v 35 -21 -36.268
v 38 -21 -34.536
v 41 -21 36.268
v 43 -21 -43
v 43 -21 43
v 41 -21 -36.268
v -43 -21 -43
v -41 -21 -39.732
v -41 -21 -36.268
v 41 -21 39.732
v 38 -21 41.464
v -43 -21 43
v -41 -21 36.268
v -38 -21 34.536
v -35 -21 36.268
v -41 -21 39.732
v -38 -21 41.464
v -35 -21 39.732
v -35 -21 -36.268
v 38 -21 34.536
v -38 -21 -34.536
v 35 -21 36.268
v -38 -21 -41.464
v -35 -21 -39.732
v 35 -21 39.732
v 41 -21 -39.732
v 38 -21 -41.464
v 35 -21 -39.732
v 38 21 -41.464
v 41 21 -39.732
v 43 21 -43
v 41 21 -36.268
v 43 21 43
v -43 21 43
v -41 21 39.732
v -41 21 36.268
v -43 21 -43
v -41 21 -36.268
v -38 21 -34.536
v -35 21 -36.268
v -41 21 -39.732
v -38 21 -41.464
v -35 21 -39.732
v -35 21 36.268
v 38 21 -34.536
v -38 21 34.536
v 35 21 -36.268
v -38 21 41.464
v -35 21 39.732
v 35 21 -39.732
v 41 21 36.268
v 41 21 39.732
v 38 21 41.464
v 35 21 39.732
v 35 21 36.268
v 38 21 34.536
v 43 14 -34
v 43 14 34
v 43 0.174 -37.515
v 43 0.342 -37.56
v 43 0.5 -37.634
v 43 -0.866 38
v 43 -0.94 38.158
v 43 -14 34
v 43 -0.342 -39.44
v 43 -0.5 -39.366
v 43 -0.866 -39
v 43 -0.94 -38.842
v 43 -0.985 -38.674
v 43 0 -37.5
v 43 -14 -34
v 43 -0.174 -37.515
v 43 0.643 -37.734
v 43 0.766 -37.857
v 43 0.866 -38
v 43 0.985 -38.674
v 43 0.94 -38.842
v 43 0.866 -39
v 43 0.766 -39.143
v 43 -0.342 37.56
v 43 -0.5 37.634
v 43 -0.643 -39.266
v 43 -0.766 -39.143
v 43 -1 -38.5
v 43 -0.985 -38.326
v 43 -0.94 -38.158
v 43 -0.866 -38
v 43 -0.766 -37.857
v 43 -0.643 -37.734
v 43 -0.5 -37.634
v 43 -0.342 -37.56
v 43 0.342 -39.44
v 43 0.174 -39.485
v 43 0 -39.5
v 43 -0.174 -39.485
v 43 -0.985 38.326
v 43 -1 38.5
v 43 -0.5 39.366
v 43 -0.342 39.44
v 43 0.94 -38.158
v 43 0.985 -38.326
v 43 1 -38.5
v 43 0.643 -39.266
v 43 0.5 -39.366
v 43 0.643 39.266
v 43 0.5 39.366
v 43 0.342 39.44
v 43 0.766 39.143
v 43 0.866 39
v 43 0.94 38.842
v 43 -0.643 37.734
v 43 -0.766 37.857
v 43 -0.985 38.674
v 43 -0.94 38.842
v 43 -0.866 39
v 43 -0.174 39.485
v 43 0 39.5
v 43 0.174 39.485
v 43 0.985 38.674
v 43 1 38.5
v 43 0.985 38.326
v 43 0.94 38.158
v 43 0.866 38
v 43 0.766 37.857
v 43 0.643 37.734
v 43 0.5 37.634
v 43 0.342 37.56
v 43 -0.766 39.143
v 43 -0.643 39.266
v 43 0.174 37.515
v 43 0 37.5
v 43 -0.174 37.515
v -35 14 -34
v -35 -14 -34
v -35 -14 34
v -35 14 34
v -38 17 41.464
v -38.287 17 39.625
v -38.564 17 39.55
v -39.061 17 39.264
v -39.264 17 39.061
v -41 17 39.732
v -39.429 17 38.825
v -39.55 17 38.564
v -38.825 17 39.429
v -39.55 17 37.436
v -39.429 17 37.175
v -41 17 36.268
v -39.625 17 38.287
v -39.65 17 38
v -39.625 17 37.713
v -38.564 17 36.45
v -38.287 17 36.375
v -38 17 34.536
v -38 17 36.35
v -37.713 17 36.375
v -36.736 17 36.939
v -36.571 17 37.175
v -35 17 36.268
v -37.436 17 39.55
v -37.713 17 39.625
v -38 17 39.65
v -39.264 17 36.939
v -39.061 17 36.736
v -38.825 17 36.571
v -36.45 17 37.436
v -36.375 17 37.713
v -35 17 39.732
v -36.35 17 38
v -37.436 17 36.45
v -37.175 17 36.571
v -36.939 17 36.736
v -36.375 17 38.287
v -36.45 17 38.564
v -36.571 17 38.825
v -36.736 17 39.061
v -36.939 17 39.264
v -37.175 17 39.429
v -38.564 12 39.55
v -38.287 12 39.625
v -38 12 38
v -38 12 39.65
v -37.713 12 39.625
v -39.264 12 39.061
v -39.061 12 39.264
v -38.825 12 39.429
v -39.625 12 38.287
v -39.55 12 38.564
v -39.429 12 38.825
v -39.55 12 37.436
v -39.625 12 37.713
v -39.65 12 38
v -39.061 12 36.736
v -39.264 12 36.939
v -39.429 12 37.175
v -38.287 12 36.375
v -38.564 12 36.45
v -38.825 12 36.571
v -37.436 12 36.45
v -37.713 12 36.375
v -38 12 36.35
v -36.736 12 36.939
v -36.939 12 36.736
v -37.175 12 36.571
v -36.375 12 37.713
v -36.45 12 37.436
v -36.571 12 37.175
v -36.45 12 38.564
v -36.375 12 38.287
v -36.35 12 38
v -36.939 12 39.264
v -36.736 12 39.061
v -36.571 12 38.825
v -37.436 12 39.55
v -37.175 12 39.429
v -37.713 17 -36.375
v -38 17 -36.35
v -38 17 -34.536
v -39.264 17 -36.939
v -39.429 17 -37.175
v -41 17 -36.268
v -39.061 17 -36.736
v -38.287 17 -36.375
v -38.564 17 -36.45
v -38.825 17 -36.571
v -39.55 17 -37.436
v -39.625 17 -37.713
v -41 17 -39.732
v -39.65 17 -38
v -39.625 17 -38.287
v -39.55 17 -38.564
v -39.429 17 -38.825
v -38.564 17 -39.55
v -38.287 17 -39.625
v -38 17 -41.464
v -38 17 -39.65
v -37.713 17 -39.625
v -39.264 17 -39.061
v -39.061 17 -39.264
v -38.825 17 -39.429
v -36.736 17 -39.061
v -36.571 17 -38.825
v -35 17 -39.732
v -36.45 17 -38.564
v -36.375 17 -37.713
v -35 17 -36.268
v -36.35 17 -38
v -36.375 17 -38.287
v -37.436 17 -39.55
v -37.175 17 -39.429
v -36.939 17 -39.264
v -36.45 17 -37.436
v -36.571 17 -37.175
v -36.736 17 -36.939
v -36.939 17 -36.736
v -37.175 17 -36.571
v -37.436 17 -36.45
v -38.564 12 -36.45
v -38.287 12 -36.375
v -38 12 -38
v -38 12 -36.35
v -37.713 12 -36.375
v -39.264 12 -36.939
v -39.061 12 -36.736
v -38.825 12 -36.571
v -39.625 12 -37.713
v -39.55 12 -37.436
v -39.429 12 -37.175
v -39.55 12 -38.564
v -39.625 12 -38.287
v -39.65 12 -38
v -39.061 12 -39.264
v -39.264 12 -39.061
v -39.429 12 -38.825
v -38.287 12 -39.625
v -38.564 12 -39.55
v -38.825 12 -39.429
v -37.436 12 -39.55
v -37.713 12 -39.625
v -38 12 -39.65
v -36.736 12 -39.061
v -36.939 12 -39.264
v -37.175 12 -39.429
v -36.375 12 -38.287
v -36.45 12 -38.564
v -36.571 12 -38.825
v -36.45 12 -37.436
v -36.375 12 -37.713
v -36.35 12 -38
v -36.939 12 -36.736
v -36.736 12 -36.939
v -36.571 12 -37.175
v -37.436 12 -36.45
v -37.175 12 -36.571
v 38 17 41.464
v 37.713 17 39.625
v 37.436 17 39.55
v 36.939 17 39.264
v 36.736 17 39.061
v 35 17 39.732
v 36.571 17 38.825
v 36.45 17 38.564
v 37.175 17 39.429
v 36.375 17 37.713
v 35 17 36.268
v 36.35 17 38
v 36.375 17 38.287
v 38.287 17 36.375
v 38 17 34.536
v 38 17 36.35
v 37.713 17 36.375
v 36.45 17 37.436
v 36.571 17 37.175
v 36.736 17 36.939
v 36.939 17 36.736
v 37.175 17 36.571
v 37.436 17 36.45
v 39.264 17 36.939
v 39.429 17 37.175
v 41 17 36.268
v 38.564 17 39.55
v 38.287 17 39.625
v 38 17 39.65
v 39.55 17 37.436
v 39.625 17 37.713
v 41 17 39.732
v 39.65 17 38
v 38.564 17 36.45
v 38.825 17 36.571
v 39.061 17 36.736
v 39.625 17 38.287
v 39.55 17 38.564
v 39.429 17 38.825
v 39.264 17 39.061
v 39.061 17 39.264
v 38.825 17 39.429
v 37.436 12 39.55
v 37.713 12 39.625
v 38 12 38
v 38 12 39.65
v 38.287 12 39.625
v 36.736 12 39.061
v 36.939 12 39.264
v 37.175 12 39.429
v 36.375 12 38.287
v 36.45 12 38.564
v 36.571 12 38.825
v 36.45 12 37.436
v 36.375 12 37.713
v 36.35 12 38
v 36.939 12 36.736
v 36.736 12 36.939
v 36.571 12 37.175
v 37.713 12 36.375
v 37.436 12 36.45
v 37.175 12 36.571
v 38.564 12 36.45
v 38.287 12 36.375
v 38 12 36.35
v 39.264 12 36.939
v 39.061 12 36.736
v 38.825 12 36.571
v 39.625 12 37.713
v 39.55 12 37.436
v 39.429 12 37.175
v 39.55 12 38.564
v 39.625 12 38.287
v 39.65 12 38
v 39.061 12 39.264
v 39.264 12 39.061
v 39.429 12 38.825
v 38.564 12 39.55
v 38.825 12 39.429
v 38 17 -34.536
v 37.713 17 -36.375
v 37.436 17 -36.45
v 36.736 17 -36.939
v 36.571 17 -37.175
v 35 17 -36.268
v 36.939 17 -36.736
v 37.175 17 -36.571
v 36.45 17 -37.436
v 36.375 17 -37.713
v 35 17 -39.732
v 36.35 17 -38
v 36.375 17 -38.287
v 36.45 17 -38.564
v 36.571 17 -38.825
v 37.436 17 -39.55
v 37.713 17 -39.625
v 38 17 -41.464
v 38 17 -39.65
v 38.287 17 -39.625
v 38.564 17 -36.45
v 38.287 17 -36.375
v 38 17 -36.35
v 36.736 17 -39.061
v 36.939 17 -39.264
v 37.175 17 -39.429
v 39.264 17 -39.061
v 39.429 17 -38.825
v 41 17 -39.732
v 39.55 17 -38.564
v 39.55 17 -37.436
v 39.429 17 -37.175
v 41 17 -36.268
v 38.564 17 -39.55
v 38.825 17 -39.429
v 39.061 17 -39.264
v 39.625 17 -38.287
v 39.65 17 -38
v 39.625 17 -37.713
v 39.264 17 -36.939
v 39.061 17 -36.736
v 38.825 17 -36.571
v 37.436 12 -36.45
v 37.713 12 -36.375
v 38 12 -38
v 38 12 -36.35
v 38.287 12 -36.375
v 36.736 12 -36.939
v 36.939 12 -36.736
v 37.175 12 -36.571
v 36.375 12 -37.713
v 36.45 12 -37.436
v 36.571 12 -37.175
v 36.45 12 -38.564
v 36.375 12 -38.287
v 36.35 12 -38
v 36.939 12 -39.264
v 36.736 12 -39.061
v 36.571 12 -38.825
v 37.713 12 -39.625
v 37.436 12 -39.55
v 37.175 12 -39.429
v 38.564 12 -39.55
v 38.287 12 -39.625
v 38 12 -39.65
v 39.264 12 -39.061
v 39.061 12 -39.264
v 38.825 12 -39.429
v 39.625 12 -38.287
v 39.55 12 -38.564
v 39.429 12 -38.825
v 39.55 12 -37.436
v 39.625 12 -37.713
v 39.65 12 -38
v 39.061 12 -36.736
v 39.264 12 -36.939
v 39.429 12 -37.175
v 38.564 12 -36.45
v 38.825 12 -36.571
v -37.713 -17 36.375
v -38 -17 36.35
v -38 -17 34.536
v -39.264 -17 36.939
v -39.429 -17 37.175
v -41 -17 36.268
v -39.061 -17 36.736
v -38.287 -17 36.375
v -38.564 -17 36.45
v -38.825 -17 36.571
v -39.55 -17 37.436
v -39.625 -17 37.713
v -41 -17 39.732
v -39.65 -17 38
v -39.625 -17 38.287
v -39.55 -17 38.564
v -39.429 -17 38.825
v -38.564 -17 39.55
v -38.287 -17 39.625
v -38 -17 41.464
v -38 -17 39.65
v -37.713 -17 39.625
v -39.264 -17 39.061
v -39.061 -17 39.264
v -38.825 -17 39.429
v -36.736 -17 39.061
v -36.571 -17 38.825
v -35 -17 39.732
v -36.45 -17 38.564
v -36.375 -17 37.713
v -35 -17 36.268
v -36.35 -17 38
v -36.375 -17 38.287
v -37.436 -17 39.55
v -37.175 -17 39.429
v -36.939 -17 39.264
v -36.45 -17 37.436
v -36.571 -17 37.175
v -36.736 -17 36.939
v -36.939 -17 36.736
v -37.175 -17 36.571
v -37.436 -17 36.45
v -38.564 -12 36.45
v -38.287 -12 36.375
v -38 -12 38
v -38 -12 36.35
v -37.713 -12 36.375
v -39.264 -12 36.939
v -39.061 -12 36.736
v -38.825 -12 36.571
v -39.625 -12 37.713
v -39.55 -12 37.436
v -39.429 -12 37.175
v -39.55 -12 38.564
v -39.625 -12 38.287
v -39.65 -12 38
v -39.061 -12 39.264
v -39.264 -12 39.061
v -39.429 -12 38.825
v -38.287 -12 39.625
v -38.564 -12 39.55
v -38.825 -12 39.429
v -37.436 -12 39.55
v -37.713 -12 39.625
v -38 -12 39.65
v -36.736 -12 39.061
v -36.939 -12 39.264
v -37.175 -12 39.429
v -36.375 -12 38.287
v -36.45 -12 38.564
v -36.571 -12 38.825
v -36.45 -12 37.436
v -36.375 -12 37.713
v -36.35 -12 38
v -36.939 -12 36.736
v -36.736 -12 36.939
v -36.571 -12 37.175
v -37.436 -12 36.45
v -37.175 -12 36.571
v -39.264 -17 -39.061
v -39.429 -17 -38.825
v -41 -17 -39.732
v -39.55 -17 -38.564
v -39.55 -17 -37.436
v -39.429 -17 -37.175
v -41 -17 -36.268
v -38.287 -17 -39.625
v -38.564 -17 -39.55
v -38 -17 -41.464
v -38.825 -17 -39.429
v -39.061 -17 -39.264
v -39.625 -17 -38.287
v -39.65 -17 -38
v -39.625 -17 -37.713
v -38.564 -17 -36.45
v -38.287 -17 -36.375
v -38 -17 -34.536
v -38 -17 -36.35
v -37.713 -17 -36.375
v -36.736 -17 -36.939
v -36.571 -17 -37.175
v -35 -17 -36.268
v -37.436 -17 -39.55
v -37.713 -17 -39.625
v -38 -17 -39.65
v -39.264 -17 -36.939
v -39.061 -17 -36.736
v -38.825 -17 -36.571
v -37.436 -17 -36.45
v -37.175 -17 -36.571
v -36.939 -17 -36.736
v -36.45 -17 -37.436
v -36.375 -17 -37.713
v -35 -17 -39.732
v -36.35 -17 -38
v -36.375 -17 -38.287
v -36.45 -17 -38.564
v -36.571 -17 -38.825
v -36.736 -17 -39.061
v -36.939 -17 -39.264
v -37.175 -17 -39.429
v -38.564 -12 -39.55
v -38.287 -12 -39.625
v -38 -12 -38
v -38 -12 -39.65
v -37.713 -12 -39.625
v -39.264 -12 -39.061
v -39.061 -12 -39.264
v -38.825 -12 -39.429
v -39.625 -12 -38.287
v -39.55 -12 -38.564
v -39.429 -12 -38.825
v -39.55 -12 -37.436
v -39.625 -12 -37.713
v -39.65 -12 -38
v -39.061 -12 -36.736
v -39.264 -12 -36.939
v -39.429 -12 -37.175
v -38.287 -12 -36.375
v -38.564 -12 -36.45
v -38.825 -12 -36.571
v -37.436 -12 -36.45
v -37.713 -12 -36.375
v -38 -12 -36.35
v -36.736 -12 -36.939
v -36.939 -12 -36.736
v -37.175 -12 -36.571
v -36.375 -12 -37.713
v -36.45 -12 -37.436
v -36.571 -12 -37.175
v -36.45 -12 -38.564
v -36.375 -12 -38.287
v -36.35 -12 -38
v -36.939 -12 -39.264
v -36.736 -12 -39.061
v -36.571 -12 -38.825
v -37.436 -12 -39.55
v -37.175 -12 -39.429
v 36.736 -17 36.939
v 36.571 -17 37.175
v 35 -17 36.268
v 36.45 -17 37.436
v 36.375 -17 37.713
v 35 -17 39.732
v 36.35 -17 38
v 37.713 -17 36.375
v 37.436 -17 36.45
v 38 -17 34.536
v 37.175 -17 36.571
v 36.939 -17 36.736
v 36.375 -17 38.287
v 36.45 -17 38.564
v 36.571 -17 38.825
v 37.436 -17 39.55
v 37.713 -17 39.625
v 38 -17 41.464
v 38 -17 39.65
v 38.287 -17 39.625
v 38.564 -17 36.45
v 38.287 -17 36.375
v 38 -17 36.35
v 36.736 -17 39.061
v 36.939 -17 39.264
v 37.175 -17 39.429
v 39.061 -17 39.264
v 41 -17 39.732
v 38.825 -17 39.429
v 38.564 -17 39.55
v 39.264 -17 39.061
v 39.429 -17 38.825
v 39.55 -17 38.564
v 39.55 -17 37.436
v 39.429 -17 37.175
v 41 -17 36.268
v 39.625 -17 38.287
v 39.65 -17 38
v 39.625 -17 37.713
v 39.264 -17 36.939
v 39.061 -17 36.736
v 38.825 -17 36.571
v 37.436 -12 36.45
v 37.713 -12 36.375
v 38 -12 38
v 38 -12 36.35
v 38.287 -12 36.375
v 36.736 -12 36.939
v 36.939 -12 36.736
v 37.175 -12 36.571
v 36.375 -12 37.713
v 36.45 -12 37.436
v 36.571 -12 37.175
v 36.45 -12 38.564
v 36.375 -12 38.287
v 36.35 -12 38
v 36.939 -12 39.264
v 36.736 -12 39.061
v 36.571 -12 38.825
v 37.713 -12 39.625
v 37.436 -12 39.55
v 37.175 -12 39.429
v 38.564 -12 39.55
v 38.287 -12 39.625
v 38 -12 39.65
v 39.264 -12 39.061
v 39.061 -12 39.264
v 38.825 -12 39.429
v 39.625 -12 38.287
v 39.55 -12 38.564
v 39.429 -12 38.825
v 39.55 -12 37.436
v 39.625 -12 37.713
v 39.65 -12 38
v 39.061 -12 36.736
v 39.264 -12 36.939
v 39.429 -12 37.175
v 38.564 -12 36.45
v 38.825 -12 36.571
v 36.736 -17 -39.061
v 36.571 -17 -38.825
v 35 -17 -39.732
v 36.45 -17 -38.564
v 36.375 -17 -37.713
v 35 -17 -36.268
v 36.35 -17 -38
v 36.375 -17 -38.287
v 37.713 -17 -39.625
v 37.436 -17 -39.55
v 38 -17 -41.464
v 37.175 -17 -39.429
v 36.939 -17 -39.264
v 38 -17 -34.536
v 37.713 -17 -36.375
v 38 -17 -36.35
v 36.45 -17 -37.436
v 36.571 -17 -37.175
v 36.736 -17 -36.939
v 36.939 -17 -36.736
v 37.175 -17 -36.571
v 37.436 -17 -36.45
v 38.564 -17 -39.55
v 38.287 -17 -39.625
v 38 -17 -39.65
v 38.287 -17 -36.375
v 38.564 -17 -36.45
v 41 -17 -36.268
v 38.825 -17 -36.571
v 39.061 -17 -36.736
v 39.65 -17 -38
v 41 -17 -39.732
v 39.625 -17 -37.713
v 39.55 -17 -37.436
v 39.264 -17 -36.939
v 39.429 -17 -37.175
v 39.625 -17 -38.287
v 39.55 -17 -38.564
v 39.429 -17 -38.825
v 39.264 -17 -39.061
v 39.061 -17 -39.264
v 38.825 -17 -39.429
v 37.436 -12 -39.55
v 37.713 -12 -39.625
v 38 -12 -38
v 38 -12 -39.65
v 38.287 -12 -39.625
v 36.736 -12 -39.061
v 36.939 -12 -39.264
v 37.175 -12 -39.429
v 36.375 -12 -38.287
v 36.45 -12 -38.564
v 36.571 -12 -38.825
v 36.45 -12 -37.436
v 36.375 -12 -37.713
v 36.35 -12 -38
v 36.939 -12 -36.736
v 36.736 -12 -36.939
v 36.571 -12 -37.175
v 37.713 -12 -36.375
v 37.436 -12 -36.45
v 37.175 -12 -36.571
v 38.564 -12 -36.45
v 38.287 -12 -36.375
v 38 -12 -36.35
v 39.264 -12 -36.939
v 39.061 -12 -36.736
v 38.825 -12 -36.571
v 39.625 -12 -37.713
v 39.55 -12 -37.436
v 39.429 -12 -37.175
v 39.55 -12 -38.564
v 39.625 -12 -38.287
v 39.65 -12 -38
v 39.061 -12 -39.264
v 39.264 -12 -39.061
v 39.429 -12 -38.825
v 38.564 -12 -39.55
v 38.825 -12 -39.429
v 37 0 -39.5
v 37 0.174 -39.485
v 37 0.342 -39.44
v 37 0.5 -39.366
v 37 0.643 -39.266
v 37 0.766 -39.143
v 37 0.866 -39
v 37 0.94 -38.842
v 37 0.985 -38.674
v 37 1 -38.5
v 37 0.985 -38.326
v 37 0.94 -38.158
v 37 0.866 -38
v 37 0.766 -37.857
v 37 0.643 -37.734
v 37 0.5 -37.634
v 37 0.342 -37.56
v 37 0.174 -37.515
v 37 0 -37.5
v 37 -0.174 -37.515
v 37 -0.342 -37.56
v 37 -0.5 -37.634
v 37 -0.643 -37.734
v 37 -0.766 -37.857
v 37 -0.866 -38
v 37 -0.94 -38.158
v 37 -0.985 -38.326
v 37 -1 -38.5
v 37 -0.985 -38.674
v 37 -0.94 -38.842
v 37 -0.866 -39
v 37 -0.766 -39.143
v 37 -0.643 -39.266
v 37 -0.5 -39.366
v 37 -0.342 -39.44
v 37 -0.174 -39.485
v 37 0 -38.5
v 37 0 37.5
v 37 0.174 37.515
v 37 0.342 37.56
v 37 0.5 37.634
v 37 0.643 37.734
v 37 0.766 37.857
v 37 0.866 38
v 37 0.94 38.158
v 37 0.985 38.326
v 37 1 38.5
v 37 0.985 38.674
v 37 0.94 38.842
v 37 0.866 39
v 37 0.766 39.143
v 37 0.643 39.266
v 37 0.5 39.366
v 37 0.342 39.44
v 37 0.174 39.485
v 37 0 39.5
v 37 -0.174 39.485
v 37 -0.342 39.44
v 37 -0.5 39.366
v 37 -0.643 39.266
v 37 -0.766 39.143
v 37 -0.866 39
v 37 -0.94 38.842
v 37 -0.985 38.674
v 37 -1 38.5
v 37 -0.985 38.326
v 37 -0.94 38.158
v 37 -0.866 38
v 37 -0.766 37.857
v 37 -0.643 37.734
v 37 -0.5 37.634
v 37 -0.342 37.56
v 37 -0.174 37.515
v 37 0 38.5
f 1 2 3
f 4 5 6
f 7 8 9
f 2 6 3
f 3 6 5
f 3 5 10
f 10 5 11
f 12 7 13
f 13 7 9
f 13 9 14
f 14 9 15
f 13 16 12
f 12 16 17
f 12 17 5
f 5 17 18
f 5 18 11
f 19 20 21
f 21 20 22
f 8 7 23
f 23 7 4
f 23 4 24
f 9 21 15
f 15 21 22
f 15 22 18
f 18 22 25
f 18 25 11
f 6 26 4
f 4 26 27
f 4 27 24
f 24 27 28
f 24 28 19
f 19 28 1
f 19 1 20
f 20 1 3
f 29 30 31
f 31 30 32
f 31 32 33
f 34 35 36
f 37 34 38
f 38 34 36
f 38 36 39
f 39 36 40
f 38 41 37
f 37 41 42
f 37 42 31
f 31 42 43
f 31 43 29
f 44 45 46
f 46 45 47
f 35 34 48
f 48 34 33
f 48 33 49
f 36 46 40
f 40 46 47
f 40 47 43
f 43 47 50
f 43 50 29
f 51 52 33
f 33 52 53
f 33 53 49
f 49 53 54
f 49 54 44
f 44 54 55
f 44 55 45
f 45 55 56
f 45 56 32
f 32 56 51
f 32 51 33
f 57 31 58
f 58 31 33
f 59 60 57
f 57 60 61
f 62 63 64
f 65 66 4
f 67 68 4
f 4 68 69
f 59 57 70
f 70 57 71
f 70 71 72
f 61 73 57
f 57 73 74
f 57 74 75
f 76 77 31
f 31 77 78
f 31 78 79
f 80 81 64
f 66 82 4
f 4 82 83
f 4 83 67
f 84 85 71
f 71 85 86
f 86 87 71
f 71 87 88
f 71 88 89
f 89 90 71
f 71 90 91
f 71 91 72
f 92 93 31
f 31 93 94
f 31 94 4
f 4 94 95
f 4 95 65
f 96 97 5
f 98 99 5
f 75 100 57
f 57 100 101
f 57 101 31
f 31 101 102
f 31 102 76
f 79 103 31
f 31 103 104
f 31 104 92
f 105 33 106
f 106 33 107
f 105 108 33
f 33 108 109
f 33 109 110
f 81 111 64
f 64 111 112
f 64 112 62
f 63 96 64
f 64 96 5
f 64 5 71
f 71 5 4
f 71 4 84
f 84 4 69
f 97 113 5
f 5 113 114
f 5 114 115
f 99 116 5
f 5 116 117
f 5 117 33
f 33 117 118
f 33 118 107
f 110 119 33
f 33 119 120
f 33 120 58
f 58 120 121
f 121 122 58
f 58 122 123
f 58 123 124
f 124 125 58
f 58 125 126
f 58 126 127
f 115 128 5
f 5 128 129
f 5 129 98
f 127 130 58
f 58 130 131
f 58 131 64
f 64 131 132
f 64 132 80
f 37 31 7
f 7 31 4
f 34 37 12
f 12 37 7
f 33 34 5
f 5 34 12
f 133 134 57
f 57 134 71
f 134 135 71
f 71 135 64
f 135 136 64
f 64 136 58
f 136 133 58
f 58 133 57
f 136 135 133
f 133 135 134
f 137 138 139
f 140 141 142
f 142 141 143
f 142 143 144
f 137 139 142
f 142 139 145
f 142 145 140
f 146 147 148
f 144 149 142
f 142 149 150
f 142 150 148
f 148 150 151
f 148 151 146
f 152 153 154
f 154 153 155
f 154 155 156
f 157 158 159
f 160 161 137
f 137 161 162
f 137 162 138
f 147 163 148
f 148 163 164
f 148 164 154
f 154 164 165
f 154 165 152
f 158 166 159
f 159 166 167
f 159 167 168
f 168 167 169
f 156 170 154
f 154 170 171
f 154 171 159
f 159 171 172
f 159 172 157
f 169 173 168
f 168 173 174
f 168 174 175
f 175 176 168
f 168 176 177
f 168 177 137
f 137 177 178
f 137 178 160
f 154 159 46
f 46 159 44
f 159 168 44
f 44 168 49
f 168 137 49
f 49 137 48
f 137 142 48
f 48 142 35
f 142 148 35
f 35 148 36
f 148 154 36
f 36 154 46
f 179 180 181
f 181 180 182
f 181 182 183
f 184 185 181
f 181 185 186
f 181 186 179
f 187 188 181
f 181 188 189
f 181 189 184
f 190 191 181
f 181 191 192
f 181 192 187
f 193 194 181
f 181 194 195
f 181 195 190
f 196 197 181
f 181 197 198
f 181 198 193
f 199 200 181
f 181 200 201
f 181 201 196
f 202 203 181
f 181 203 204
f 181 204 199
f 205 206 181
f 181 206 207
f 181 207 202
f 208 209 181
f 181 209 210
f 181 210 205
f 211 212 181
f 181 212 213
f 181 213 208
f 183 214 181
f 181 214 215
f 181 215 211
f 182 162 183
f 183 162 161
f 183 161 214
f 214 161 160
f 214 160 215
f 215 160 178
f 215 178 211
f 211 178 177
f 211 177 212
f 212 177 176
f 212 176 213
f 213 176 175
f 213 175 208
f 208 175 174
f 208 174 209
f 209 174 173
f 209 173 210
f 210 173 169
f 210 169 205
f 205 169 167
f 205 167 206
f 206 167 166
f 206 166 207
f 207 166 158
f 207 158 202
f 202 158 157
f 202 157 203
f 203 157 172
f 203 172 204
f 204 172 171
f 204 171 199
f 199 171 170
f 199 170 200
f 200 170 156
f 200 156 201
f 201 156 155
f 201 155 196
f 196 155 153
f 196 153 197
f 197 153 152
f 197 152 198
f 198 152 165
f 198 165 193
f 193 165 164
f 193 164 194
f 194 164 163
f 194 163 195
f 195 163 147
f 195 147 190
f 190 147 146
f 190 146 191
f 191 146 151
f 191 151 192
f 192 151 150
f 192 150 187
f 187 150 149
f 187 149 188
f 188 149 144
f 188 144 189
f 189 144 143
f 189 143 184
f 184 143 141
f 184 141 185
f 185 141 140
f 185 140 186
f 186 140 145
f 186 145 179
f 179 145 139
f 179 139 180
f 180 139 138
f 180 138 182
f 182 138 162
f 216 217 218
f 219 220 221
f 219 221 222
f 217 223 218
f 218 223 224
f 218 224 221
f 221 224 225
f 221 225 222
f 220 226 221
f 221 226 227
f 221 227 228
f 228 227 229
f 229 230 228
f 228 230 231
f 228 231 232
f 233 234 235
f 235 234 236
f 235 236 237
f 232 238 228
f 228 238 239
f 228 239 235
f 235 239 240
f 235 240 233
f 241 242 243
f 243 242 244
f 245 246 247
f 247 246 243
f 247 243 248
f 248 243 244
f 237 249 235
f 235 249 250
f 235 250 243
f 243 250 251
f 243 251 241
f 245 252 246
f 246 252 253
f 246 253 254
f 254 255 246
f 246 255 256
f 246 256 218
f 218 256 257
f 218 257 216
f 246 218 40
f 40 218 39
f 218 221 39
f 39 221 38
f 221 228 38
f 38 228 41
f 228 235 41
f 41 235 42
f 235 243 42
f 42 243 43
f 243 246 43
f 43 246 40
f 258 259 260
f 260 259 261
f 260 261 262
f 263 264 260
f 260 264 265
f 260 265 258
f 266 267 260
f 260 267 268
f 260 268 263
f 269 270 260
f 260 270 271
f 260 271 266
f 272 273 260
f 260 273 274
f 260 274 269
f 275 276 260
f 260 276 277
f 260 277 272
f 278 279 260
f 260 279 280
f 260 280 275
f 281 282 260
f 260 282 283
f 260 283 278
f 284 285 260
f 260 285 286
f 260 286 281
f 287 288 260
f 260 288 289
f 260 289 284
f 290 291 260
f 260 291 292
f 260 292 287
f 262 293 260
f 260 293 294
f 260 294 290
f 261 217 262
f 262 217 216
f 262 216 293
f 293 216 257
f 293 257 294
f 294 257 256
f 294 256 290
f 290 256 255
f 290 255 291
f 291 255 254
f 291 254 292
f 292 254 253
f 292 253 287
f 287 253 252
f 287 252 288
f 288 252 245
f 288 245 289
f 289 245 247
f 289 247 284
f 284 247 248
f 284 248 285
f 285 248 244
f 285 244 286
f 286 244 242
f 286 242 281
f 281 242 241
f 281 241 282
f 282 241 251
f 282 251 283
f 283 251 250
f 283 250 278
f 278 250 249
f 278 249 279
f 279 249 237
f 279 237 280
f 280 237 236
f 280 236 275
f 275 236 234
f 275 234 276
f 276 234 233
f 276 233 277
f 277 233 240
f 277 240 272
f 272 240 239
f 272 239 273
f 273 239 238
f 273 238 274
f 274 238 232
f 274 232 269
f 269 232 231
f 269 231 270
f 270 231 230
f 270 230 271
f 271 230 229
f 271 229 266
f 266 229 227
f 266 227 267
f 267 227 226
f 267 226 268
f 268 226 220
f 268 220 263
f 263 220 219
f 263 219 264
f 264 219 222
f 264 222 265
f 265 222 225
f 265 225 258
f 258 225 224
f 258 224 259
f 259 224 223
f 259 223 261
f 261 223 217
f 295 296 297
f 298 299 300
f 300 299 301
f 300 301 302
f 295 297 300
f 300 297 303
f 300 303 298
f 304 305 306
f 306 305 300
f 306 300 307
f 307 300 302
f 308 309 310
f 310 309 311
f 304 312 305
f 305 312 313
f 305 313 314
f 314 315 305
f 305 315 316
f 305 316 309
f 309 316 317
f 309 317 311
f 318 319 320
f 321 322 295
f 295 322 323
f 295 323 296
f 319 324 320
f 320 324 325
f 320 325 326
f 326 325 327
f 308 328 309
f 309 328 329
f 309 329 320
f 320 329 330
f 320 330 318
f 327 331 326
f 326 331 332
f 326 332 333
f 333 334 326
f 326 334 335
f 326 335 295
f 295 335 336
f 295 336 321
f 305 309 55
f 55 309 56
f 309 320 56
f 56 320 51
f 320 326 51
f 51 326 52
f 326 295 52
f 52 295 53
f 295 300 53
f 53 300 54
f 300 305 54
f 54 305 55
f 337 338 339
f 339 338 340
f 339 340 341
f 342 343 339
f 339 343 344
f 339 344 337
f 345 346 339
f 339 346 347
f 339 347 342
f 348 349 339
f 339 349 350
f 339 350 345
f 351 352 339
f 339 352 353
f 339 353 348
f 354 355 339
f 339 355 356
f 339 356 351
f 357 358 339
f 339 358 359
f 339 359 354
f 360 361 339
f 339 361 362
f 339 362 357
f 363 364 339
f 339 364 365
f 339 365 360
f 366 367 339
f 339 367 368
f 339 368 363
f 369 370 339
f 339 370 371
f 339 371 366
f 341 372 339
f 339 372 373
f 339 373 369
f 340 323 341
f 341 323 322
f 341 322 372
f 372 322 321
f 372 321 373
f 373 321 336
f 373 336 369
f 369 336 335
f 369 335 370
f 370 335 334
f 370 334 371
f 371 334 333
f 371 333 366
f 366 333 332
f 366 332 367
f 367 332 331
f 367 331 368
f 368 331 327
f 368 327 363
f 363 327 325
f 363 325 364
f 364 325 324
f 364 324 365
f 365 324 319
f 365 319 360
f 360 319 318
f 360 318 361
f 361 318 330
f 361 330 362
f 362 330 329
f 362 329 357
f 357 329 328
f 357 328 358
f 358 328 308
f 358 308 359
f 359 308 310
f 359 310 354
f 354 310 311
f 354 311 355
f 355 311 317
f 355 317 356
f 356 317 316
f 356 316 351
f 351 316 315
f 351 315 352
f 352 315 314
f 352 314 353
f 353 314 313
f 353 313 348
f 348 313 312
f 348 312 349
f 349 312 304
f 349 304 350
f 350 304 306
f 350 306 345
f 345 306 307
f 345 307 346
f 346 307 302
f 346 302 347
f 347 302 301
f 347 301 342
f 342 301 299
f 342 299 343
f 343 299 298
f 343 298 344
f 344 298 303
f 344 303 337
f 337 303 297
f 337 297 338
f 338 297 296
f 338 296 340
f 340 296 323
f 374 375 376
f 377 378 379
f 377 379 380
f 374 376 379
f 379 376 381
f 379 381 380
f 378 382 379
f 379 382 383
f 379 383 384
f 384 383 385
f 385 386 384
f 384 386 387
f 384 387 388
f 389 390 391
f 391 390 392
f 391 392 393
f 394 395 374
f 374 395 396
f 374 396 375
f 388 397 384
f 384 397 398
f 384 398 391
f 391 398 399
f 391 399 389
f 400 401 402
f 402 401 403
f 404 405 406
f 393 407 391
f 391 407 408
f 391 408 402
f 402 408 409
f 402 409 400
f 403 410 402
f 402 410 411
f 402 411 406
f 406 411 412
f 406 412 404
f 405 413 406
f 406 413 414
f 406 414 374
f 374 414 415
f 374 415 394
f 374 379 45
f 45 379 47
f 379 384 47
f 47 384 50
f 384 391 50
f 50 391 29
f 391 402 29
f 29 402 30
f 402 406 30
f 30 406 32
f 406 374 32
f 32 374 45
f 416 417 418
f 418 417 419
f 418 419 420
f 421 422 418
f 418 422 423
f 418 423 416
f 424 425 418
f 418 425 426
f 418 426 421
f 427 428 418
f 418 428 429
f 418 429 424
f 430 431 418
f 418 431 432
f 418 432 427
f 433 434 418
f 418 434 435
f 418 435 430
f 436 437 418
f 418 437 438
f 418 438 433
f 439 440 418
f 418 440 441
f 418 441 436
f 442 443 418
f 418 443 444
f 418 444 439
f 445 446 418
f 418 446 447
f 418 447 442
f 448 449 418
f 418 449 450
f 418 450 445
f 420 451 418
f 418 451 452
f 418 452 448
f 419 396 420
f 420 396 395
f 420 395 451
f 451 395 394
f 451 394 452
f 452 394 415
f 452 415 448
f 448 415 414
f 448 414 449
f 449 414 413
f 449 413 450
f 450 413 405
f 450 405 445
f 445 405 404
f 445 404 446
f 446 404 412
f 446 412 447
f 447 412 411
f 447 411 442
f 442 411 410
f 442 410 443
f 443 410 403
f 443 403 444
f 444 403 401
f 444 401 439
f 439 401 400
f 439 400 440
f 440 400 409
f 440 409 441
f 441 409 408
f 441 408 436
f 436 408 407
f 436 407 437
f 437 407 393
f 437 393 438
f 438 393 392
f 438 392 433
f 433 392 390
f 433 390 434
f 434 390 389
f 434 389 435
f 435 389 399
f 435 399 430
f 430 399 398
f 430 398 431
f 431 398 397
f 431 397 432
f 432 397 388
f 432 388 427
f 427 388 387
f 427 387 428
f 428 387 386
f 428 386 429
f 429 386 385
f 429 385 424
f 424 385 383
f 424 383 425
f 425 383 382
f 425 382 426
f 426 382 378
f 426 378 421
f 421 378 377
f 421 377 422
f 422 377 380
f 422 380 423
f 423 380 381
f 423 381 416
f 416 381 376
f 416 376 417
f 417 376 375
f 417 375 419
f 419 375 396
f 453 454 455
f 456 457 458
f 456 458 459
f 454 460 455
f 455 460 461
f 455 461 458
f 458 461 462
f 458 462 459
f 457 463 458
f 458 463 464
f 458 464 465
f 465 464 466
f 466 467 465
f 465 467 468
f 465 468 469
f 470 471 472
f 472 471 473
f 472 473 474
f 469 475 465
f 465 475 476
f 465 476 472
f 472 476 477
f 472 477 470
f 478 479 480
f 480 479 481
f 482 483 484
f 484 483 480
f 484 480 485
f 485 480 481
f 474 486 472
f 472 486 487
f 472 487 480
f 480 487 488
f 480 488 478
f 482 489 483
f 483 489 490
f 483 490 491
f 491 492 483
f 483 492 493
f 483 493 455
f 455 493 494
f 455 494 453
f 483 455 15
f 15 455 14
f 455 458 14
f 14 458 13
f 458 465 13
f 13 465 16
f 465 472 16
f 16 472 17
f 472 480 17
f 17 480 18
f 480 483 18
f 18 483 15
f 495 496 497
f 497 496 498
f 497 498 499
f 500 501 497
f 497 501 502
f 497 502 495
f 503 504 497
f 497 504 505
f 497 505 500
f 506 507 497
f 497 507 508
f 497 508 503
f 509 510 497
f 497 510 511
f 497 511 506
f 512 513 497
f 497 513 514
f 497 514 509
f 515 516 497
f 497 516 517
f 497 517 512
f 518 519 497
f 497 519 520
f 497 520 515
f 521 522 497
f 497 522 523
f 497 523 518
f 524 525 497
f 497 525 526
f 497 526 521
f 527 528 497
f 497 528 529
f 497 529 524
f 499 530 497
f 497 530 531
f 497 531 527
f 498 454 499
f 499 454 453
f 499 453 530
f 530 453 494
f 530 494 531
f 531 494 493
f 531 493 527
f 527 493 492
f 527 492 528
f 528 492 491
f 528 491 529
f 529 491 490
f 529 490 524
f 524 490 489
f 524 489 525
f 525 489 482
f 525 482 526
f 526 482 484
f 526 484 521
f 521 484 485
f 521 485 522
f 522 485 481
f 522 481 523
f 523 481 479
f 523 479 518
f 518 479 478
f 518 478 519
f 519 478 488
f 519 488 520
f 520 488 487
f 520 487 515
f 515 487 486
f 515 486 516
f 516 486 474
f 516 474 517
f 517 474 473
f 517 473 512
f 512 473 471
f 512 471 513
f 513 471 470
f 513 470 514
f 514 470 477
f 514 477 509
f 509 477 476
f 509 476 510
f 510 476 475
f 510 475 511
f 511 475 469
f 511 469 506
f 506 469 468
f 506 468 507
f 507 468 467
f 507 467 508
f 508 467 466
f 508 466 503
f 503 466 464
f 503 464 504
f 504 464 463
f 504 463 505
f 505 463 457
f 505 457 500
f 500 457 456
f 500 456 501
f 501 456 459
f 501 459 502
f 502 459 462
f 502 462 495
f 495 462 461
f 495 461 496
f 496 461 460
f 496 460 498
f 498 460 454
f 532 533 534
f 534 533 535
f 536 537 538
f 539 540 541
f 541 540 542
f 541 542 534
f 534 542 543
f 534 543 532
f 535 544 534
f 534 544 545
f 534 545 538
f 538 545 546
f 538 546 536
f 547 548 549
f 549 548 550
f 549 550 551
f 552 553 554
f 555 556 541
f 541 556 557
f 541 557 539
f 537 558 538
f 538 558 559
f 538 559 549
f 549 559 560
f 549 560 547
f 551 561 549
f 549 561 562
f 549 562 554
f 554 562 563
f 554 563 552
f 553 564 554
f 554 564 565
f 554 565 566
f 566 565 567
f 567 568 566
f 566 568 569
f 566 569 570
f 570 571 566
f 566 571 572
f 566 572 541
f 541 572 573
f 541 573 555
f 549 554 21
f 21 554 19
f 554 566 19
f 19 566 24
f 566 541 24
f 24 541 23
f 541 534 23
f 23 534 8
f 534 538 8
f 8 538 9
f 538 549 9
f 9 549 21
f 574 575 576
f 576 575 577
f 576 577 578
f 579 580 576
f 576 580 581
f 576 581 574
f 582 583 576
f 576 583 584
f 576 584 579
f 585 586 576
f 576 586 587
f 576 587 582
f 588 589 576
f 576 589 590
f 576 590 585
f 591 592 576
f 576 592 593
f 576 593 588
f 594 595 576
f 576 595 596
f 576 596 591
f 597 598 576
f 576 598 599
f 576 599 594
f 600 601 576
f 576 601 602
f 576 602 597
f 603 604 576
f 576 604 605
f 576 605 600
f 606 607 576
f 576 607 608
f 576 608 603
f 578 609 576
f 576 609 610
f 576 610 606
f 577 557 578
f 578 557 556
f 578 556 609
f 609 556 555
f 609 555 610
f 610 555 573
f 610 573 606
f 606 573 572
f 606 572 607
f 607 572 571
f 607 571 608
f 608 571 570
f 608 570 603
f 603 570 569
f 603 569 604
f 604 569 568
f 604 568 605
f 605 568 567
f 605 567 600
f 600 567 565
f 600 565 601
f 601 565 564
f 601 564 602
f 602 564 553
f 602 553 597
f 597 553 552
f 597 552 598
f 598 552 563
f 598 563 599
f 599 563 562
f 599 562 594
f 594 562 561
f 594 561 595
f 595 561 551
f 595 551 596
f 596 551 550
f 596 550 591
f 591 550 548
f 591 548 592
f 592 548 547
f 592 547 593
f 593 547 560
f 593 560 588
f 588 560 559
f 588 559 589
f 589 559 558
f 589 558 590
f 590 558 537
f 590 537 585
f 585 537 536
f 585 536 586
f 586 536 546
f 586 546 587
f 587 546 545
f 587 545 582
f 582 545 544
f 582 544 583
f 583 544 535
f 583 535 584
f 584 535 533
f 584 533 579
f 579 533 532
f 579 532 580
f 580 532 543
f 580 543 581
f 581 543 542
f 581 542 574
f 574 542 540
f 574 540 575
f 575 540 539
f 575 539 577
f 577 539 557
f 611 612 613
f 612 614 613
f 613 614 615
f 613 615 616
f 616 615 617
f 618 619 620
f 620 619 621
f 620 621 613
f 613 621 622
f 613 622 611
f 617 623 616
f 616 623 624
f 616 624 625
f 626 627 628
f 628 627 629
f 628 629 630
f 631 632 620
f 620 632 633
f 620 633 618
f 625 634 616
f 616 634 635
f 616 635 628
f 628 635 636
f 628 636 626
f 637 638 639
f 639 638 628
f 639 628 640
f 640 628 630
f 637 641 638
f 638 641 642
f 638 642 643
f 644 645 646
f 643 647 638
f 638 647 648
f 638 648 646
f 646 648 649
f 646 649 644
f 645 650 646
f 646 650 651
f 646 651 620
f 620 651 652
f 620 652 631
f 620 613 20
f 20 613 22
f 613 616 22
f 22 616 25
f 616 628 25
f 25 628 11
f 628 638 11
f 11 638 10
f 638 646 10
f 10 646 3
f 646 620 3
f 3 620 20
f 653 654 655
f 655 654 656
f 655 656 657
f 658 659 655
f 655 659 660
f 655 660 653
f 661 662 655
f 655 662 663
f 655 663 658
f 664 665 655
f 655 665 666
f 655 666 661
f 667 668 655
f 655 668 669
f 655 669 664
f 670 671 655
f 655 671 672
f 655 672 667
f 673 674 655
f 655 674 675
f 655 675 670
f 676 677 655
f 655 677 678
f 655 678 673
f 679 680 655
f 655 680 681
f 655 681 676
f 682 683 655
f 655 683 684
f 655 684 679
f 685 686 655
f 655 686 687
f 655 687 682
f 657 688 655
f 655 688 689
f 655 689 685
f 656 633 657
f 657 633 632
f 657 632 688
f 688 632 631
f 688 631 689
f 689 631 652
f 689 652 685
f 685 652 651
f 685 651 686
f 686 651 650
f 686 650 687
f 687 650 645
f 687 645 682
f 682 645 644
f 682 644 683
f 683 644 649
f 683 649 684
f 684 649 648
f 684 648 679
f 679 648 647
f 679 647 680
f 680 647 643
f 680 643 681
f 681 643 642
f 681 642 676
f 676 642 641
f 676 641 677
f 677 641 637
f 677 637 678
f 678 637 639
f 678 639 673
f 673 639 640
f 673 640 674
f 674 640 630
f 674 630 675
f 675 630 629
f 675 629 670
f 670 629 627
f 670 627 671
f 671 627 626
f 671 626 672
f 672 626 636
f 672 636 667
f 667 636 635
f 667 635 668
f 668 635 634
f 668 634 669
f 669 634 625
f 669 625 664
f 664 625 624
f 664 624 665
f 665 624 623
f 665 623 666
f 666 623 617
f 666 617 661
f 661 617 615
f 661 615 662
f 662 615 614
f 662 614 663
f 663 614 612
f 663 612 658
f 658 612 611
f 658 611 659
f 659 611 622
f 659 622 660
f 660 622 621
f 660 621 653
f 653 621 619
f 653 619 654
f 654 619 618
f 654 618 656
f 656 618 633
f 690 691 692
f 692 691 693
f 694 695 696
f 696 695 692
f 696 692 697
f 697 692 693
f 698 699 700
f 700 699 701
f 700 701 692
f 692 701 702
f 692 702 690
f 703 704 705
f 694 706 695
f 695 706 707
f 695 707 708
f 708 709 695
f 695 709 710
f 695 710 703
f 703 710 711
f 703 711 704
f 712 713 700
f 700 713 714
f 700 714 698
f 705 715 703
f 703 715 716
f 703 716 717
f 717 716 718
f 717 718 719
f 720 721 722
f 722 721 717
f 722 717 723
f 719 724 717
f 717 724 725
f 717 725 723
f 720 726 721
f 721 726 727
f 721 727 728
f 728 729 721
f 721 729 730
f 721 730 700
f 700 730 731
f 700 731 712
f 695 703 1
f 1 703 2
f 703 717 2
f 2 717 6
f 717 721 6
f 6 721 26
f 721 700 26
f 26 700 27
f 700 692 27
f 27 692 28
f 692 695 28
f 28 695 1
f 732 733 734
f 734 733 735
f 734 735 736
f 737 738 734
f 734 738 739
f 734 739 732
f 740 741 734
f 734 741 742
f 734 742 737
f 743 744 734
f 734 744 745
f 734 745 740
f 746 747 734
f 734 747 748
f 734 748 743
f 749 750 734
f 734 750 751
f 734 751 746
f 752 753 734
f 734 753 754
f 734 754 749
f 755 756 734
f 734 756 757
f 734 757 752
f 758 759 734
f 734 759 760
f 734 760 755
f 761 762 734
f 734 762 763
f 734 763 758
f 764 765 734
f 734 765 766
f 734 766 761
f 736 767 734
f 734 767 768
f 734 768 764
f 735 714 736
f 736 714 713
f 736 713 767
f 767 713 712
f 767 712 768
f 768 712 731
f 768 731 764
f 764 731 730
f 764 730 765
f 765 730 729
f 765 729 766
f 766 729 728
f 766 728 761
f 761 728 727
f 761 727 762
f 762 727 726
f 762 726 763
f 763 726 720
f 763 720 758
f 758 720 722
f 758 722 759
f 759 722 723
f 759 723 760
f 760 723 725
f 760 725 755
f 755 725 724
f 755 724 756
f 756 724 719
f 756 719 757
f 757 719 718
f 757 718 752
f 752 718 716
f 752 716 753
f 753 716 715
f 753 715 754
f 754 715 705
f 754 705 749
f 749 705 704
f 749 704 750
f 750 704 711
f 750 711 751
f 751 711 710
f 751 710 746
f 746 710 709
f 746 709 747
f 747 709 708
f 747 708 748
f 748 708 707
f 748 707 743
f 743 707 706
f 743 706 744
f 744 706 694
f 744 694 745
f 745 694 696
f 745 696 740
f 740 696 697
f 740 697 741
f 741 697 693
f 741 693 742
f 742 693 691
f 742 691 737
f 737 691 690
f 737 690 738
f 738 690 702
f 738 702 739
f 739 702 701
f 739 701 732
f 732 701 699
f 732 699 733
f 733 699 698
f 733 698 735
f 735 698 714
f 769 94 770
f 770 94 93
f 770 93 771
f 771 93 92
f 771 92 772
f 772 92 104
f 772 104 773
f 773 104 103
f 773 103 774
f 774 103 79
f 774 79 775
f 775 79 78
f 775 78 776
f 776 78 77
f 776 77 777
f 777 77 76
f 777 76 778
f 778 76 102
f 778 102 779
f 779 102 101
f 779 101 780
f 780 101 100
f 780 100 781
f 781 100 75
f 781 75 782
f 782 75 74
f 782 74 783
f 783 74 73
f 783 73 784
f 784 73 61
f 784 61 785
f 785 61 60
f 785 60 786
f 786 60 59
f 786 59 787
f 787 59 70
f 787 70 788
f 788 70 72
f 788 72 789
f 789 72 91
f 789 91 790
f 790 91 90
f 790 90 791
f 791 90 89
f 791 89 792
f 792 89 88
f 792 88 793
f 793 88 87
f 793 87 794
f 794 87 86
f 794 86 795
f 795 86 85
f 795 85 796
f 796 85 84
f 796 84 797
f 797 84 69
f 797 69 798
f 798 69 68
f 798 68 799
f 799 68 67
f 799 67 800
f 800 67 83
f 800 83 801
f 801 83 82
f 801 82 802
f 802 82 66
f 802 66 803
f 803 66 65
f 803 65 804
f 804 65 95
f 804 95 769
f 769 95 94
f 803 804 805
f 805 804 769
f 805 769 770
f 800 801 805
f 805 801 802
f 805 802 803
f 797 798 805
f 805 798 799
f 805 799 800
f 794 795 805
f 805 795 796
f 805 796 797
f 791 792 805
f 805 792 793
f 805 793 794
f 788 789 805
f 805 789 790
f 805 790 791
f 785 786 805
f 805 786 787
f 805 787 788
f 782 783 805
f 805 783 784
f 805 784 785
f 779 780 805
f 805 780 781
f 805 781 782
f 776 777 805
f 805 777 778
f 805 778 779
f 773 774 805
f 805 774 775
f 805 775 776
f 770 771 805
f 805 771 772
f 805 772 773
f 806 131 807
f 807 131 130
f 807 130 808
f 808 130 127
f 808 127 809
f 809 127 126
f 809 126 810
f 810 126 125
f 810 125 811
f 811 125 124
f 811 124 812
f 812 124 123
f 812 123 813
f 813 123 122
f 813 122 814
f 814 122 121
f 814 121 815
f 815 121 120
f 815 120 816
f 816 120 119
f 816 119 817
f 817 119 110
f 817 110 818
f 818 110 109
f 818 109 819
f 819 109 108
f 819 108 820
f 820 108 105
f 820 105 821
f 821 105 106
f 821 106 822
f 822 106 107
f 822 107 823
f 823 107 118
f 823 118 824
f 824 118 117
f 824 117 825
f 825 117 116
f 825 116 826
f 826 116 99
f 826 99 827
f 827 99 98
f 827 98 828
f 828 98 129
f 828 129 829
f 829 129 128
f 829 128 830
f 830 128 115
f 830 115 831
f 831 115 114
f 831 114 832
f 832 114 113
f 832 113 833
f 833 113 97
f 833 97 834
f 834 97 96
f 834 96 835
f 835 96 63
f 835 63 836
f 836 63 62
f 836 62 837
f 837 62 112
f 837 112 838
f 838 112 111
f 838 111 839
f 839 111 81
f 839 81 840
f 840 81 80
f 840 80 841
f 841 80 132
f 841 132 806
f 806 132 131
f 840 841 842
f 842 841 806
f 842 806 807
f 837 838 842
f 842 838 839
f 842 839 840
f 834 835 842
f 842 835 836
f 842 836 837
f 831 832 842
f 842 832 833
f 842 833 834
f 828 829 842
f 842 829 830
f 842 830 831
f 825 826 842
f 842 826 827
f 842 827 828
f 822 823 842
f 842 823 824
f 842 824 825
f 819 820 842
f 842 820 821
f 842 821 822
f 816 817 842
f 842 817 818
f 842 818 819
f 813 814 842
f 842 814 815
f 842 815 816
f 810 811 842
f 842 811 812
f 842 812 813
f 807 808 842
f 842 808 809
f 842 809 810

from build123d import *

# Parameters (mm, degrees)
ESBO_O1_W                = 86
ESBO_O1_H                = 86
RESSALTO_EXTRUS_O1_DEPTH = 21
ESBO_O2_W                = 68
ESBO_O2_H                = 28
CORTE_EXTRUS_O1_DEPTH    = 78
ESBO_O6_R                = 1.65
CORTE_EXTRUS_O3_DEPTH    = 9
CORTE_EXTRUS_O4_DEPTH    = 4
ESPELHAR2_COPY_1_DEPTH   = 4
CORTE_EXTRUS_O5_START    = -9
ESBO_O8_R                = 1.65
CORTE_EXTRUS_O5_DEPTH    = 9
ESPELHAR4_COPY_1_DEPTH   = 4
ESPELHAR4_COPY_2_DEPTH   = 4
ESPELHAR4_COPY_3_DEPTH   = 4
ESBO_O9_R                = 1
CORTE_EXTRUS_O6_DEPTH    = 6


with BuildPart() as part:
    # Esboço1 → Ressalto-extrusão1 (new, symmetric)
    with BuildSketch(Plane(origin=(0, 0, 0), x_dir=(1, 0, 0), z_dir=(0, 1, 0))):
        Rectangle(ESBO_O1_W, ESBO_O1_H)
    extrude(amount=RESSALTO_EXTRUS_O1_DEPTH, both=True)

    # Esboço2 → Corte-extrusão1 (cut)
    with BuildSketch(Plane(origin=(43, 0, 0), x_dir=(0, 0, -1), z_dir=(1, 0, 0))):
        Rectangle(ESBO_O2_W, ESBO_O2_H)
    extrude(amount=-CORTE_EXTRUS_O1_DEPTH, mode=Mode.SUBTRACT)

    # Esboço6 → Corte-extrusão3 (cut)
    with BuildSketch(Plane(origin=(0, 21, 0), x_dir=(1, 0, 0), z_dir=(0, 1, 0))):
        with Locations(Location((-38, -38, 0), (0, 0, 270))):
            Circle(ESBO_O6_R)
        with Locations(Location((-38, 38, 0), (0, 0, 270))):
            Circle(ESBO_O6_R)
        with Locations(Location((38, 38, 0), (0, 0, 270))):
            Circle(ESBO_O6_R)
        with Locations(Location((38, -38, 0), (0, 0, 270))):
            Circle(ESBO_O6_R)
    extrude(amount=-CORTE_EXTRUS_O3_DEPTH, mode=Mode.SUBTRACT)

    # Esboço7 → Corte-extrusão4 (cut)
    with BuildSketch(Plane(origin=(0, 21, 0), x_dir=(1, 0, 0), z_dir=(0, 1, 0))):
        Polygon((-38, -34.535898385), (-41, -36.267949192), (-41, -39.732050808), (-38, -41.464101615), (-35, -39.732050808), (-35, -36.267949192), align=None)
    corte_extrus_o4 = extrude(amount=-CORTE_EXTRUS_O4_DEPTH, mode=Mode.SUBTRACT)

    # Espelhar1: Corte-extrusão4 across plane
    add(corte_extrus_o4.mirror(Plane.XY), mode=Mode.SUBTRACT)

    # Espelhar2: Corte-extrusão4 across plane
    add(corte_extrus_o4.mirror(Plane(origin=(0, 0, 0), x_dir=(0, 0, 1), z_dir=(1, 0, 0))), mode=Mode.SUBTRACT)

    # Espelhar2 copy 1 sketch → Espelhar2 copy 1 (cut)
    with BuildSketch(Plane(origin=(0, 21, 0), x_dir=(-1, 0, 0), z_dir=(0, 1, 0))):
        Polygon((-38, -34.535898385), (-41, -36.267949192), (-41, -39.732050808), (-38, -41.464101615), (-35, -39.732050808), (-35, -36.267949192), align=None)
    extrude(amount=-ESPELHAR2_COPY_1_DEPTH, mode=Mode.SUBTRACT)

    # Esboço8 → Corte-extrusão5 (cut)
    with BuildSketch(Plane.XZ.offset(21).offset(CORTE_EXTRUS_O5_START)):
        with Locations(Location((38, 38, 0), (0, 0, 90))):
            Circle(ESBO_O8_R)
        with Locations(Location((38, -38, 0), (0, 0, 90))):
            Circle(ESBO_O8_R)
        with Locations(Location((-38, -38, 0), (0, 0, 90))):
            Circle(ESBO_O8_R)
        with Locations(Location((-38, 38, 0), (0, 0, 90))):
            Circle(ESBO_O8_R)
    extrude(amount=CORTE_EXTRUS_O5_DEPTH, mode=Mode.SUBTRACT)

    # Espelhar4: Corte-extrusão4 across plane
    add(corte_extrus_o4.mirror(Plane.ZX), mode=Mode.SUBTRACT)

    # Espelhar4 copy 1 sketch → Espelhar4 copy 1 (cut)
    with BuildSketch(Plane.XZ.offset(21)):
        Polygon((-38, -34.535898385), (-41, -36.267949192), (-41, -39.732050808), (-38, -41.464101615), (-35, -39.732050808), (-35, -36.267949192), align=None)
    extrude(amount=-ESPELHAR4_COPY_1_DEPTH, mode=Mode.SUBTRACT)

    # Espelhar4 copy 2 sketch → Espelhar4 copy 2 (cut)
    with BuildSketch(Plane(origin=(0, -21, 0), x_dir=(-1, 0, 0), z_dir=(0, -1, 0))):
        Polygon((-38, -34.535898385), (-41, -36.267949192), (-41, -39.732050808), (-38, -41.464101615), (-35, -39.732050808), (-35, -36.267949192), align=None)
    extrude(amount=-ESPELHAR4_COPY_2_DEPTH, mode=Mode.SUBTRACT)

    # Espelhar4 copy 3 sketch → Espelhar4 copy 3 (cut)
    with BuildSketch(Plane(origin=(0, -21, 0), x_dir=(-1, 0, 0), z_dir=(0, -1, 0))):
        Polygon((-38, 34.535898385), (-41, 36.267949192), (-41, 39.732050808), (-38, 41.464101615), (-35, 39.732050808), (-35, 36.267949192), align=None)
    extrude(amount=-ESPELHAR4_COPY_3_DEPTH, mode=Mode.SUBTRACT)

    # Esboço9 → Corte-extrusão6 (cut)
    with BuildSketch(Plane(origin=(43, 0, 0), x_dir=(0, 0, -1), z_dir=(1, 0, 0))):
        with Locations((-38.5, 0)):
            Circle(ESBO_O9_R)
        with Locations((38.5, 0)):
            Circle(ESBO_O9_R)
    extrude(amount=-CORTE_EXTRUS_O6_DEPTH, mode=Mode.SUBTRACT)


solid = part.part
